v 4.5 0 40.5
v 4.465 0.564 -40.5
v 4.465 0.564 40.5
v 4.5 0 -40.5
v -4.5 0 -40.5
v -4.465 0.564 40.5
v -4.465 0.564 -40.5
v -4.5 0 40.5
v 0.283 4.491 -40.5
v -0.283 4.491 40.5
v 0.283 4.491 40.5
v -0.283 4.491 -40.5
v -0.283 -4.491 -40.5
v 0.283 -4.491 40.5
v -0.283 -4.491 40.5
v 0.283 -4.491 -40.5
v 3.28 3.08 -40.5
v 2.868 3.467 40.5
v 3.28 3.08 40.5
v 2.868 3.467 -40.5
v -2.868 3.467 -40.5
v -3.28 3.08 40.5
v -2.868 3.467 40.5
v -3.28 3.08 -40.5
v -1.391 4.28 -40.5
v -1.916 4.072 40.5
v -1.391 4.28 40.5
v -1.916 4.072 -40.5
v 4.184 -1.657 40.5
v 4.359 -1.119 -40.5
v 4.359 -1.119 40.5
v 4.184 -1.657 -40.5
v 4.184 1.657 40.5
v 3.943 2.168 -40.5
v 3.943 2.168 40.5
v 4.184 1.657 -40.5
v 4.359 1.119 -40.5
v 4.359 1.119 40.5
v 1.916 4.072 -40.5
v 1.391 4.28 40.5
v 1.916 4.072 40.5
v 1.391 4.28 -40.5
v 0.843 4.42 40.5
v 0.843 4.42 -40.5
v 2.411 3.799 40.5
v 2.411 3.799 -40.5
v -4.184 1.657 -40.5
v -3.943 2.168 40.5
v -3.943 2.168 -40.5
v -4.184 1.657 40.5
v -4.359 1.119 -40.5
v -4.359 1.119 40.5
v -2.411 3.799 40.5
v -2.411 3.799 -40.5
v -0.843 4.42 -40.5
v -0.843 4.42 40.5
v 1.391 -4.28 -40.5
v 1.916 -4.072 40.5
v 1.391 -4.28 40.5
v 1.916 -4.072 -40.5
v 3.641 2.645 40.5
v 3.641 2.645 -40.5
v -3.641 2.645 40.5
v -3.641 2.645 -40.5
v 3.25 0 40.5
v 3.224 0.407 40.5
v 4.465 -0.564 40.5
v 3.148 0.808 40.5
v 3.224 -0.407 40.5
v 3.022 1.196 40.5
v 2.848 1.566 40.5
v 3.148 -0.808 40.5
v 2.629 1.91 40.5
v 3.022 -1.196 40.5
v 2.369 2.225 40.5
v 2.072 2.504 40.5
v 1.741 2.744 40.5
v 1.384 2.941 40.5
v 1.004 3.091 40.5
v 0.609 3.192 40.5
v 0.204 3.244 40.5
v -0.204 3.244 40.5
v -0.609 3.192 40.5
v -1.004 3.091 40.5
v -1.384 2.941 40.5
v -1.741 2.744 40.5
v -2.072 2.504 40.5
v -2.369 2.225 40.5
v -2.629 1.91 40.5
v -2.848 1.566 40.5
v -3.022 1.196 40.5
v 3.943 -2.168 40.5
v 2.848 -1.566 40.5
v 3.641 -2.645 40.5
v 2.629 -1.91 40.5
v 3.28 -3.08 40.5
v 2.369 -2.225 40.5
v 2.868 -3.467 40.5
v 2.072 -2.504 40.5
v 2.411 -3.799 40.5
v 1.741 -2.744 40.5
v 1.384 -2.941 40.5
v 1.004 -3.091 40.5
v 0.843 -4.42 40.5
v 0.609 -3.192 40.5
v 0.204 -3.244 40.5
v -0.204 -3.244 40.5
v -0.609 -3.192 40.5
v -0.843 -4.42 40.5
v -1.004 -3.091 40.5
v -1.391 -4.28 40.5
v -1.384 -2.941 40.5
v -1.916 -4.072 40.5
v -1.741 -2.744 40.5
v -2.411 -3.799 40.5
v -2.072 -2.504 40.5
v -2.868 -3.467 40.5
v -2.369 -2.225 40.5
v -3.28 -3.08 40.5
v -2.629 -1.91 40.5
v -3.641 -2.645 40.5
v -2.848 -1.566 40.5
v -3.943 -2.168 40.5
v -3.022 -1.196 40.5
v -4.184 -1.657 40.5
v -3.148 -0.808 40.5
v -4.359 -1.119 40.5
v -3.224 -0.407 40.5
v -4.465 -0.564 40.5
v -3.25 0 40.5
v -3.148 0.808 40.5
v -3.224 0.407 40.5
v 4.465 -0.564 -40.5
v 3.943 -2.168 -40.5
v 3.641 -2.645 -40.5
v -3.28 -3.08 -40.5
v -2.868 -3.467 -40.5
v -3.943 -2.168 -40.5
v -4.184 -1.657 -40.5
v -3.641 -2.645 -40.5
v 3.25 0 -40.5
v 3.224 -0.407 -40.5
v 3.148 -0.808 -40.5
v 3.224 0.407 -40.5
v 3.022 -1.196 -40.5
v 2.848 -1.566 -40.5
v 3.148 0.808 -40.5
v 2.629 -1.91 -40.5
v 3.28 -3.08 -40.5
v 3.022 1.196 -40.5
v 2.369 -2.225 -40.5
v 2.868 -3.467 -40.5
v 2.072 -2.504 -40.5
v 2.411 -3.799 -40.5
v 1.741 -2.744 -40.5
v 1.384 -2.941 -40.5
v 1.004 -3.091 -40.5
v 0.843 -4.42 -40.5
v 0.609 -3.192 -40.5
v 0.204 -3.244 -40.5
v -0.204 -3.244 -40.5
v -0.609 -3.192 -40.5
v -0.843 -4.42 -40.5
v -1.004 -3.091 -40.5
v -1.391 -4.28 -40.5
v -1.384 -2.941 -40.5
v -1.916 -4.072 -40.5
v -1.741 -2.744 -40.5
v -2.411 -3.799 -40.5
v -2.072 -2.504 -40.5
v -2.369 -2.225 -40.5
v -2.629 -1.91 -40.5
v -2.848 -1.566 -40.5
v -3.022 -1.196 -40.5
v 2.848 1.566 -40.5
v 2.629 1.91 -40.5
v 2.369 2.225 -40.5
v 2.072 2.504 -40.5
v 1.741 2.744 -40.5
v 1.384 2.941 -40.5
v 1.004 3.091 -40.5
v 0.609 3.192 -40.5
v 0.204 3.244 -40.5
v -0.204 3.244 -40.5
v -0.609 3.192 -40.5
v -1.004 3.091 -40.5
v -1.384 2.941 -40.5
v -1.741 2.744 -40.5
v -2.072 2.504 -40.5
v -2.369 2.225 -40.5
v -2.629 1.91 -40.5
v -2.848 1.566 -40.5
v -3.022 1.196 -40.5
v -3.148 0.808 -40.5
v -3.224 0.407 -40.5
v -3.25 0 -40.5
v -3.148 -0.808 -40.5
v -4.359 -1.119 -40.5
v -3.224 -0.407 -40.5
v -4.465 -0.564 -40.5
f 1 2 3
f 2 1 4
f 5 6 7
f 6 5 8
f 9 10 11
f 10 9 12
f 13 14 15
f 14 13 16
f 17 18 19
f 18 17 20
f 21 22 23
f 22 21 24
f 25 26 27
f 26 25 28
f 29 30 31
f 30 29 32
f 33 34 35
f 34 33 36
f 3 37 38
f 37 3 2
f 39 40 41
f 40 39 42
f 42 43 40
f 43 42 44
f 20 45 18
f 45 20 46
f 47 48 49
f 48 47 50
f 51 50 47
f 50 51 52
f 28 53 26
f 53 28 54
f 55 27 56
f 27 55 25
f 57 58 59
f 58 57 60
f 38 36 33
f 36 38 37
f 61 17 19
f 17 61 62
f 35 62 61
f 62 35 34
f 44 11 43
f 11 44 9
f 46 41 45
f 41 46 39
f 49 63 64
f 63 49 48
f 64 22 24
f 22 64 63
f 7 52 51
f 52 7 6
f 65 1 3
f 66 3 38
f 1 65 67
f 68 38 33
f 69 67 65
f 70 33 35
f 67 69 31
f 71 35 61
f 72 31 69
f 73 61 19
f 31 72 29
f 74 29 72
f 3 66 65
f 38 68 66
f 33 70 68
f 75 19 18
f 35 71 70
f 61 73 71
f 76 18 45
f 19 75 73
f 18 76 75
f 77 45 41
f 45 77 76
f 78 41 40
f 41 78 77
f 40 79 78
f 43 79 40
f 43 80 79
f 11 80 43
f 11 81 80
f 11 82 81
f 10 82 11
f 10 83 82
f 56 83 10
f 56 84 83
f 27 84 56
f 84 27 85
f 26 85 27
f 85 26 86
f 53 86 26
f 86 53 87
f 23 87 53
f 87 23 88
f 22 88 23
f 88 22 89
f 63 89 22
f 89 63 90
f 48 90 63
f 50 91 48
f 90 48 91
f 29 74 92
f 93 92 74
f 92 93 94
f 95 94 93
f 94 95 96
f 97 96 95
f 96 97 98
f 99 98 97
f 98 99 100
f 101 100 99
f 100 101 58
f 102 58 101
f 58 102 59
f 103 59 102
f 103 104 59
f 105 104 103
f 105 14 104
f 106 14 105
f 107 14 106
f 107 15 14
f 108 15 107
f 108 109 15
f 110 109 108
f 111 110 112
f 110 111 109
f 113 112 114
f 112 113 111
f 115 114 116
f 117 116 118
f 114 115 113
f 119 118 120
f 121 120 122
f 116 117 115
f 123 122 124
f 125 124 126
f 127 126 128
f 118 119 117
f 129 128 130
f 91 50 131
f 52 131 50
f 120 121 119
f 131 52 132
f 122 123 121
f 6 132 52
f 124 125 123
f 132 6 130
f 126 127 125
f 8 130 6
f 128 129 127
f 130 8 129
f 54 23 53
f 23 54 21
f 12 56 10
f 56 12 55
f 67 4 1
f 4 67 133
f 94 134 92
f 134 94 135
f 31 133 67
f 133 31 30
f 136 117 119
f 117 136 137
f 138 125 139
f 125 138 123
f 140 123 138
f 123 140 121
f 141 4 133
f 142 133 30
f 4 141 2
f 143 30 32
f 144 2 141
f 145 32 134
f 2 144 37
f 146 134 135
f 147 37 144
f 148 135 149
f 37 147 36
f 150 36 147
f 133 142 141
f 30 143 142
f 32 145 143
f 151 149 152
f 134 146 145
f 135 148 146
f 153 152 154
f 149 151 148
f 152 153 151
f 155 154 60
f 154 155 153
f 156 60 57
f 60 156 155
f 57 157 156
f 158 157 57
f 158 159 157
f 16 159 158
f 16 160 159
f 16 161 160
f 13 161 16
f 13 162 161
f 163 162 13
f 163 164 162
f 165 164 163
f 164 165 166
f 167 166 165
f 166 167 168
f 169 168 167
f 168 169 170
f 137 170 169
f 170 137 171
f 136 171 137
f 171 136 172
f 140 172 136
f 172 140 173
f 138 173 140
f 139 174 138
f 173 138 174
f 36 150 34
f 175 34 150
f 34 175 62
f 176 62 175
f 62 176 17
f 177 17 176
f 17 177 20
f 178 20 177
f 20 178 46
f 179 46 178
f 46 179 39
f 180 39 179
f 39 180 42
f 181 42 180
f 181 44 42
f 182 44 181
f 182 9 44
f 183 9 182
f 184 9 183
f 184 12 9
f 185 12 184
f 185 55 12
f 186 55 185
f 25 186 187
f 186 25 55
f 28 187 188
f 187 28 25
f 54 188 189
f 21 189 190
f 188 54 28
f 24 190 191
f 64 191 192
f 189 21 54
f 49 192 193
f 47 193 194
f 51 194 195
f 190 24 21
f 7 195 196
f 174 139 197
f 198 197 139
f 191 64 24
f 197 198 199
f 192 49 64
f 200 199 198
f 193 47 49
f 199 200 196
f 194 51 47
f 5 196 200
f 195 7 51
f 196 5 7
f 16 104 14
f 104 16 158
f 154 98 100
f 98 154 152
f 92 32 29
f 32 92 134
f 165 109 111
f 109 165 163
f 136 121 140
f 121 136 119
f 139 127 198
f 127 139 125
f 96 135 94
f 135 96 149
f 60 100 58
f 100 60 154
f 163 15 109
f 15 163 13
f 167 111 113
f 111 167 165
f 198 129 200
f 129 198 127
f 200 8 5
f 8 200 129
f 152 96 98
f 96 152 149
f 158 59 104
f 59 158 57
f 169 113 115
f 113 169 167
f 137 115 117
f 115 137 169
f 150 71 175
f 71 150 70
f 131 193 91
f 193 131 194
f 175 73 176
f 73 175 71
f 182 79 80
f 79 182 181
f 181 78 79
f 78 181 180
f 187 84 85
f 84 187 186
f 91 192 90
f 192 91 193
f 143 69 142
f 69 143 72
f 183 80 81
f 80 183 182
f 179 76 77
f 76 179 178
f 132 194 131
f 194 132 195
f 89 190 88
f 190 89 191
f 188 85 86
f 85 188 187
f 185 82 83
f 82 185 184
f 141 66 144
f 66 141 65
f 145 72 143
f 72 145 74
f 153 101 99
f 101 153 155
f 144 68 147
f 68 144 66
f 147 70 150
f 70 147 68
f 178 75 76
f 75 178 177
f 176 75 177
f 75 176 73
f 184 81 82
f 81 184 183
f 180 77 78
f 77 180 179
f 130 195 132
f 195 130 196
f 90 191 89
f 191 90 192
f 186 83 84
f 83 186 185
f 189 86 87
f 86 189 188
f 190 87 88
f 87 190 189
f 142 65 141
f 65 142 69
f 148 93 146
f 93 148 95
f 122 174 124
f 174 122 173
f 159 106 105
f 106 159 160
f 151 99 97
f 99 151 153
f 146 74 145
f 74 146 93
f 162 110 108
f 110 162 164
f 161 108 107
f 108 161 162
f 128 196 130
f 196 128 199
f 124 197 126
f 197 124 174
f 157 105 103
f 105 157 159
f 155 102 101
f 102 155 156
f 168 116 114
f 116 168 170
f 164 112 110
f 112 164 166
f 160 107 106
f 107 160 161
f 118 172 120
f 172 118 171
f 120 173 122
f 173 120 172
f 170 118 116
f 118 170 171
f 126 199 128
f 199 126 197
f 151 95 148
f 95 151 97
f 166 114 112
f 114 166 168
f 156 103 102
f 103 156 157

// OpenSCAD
$fn = 50;


difference() {
	union() {
		translate(v = [0, 0, -40.5000000000]) {
			cylinder(h = 81, r = 4.5000000000);
		}
	}
	union() {
		translate(v = [0, 0, -100.0000000000]) {
			cylinder(h = 200, r = 3.2500000000);
		}
	}
}
